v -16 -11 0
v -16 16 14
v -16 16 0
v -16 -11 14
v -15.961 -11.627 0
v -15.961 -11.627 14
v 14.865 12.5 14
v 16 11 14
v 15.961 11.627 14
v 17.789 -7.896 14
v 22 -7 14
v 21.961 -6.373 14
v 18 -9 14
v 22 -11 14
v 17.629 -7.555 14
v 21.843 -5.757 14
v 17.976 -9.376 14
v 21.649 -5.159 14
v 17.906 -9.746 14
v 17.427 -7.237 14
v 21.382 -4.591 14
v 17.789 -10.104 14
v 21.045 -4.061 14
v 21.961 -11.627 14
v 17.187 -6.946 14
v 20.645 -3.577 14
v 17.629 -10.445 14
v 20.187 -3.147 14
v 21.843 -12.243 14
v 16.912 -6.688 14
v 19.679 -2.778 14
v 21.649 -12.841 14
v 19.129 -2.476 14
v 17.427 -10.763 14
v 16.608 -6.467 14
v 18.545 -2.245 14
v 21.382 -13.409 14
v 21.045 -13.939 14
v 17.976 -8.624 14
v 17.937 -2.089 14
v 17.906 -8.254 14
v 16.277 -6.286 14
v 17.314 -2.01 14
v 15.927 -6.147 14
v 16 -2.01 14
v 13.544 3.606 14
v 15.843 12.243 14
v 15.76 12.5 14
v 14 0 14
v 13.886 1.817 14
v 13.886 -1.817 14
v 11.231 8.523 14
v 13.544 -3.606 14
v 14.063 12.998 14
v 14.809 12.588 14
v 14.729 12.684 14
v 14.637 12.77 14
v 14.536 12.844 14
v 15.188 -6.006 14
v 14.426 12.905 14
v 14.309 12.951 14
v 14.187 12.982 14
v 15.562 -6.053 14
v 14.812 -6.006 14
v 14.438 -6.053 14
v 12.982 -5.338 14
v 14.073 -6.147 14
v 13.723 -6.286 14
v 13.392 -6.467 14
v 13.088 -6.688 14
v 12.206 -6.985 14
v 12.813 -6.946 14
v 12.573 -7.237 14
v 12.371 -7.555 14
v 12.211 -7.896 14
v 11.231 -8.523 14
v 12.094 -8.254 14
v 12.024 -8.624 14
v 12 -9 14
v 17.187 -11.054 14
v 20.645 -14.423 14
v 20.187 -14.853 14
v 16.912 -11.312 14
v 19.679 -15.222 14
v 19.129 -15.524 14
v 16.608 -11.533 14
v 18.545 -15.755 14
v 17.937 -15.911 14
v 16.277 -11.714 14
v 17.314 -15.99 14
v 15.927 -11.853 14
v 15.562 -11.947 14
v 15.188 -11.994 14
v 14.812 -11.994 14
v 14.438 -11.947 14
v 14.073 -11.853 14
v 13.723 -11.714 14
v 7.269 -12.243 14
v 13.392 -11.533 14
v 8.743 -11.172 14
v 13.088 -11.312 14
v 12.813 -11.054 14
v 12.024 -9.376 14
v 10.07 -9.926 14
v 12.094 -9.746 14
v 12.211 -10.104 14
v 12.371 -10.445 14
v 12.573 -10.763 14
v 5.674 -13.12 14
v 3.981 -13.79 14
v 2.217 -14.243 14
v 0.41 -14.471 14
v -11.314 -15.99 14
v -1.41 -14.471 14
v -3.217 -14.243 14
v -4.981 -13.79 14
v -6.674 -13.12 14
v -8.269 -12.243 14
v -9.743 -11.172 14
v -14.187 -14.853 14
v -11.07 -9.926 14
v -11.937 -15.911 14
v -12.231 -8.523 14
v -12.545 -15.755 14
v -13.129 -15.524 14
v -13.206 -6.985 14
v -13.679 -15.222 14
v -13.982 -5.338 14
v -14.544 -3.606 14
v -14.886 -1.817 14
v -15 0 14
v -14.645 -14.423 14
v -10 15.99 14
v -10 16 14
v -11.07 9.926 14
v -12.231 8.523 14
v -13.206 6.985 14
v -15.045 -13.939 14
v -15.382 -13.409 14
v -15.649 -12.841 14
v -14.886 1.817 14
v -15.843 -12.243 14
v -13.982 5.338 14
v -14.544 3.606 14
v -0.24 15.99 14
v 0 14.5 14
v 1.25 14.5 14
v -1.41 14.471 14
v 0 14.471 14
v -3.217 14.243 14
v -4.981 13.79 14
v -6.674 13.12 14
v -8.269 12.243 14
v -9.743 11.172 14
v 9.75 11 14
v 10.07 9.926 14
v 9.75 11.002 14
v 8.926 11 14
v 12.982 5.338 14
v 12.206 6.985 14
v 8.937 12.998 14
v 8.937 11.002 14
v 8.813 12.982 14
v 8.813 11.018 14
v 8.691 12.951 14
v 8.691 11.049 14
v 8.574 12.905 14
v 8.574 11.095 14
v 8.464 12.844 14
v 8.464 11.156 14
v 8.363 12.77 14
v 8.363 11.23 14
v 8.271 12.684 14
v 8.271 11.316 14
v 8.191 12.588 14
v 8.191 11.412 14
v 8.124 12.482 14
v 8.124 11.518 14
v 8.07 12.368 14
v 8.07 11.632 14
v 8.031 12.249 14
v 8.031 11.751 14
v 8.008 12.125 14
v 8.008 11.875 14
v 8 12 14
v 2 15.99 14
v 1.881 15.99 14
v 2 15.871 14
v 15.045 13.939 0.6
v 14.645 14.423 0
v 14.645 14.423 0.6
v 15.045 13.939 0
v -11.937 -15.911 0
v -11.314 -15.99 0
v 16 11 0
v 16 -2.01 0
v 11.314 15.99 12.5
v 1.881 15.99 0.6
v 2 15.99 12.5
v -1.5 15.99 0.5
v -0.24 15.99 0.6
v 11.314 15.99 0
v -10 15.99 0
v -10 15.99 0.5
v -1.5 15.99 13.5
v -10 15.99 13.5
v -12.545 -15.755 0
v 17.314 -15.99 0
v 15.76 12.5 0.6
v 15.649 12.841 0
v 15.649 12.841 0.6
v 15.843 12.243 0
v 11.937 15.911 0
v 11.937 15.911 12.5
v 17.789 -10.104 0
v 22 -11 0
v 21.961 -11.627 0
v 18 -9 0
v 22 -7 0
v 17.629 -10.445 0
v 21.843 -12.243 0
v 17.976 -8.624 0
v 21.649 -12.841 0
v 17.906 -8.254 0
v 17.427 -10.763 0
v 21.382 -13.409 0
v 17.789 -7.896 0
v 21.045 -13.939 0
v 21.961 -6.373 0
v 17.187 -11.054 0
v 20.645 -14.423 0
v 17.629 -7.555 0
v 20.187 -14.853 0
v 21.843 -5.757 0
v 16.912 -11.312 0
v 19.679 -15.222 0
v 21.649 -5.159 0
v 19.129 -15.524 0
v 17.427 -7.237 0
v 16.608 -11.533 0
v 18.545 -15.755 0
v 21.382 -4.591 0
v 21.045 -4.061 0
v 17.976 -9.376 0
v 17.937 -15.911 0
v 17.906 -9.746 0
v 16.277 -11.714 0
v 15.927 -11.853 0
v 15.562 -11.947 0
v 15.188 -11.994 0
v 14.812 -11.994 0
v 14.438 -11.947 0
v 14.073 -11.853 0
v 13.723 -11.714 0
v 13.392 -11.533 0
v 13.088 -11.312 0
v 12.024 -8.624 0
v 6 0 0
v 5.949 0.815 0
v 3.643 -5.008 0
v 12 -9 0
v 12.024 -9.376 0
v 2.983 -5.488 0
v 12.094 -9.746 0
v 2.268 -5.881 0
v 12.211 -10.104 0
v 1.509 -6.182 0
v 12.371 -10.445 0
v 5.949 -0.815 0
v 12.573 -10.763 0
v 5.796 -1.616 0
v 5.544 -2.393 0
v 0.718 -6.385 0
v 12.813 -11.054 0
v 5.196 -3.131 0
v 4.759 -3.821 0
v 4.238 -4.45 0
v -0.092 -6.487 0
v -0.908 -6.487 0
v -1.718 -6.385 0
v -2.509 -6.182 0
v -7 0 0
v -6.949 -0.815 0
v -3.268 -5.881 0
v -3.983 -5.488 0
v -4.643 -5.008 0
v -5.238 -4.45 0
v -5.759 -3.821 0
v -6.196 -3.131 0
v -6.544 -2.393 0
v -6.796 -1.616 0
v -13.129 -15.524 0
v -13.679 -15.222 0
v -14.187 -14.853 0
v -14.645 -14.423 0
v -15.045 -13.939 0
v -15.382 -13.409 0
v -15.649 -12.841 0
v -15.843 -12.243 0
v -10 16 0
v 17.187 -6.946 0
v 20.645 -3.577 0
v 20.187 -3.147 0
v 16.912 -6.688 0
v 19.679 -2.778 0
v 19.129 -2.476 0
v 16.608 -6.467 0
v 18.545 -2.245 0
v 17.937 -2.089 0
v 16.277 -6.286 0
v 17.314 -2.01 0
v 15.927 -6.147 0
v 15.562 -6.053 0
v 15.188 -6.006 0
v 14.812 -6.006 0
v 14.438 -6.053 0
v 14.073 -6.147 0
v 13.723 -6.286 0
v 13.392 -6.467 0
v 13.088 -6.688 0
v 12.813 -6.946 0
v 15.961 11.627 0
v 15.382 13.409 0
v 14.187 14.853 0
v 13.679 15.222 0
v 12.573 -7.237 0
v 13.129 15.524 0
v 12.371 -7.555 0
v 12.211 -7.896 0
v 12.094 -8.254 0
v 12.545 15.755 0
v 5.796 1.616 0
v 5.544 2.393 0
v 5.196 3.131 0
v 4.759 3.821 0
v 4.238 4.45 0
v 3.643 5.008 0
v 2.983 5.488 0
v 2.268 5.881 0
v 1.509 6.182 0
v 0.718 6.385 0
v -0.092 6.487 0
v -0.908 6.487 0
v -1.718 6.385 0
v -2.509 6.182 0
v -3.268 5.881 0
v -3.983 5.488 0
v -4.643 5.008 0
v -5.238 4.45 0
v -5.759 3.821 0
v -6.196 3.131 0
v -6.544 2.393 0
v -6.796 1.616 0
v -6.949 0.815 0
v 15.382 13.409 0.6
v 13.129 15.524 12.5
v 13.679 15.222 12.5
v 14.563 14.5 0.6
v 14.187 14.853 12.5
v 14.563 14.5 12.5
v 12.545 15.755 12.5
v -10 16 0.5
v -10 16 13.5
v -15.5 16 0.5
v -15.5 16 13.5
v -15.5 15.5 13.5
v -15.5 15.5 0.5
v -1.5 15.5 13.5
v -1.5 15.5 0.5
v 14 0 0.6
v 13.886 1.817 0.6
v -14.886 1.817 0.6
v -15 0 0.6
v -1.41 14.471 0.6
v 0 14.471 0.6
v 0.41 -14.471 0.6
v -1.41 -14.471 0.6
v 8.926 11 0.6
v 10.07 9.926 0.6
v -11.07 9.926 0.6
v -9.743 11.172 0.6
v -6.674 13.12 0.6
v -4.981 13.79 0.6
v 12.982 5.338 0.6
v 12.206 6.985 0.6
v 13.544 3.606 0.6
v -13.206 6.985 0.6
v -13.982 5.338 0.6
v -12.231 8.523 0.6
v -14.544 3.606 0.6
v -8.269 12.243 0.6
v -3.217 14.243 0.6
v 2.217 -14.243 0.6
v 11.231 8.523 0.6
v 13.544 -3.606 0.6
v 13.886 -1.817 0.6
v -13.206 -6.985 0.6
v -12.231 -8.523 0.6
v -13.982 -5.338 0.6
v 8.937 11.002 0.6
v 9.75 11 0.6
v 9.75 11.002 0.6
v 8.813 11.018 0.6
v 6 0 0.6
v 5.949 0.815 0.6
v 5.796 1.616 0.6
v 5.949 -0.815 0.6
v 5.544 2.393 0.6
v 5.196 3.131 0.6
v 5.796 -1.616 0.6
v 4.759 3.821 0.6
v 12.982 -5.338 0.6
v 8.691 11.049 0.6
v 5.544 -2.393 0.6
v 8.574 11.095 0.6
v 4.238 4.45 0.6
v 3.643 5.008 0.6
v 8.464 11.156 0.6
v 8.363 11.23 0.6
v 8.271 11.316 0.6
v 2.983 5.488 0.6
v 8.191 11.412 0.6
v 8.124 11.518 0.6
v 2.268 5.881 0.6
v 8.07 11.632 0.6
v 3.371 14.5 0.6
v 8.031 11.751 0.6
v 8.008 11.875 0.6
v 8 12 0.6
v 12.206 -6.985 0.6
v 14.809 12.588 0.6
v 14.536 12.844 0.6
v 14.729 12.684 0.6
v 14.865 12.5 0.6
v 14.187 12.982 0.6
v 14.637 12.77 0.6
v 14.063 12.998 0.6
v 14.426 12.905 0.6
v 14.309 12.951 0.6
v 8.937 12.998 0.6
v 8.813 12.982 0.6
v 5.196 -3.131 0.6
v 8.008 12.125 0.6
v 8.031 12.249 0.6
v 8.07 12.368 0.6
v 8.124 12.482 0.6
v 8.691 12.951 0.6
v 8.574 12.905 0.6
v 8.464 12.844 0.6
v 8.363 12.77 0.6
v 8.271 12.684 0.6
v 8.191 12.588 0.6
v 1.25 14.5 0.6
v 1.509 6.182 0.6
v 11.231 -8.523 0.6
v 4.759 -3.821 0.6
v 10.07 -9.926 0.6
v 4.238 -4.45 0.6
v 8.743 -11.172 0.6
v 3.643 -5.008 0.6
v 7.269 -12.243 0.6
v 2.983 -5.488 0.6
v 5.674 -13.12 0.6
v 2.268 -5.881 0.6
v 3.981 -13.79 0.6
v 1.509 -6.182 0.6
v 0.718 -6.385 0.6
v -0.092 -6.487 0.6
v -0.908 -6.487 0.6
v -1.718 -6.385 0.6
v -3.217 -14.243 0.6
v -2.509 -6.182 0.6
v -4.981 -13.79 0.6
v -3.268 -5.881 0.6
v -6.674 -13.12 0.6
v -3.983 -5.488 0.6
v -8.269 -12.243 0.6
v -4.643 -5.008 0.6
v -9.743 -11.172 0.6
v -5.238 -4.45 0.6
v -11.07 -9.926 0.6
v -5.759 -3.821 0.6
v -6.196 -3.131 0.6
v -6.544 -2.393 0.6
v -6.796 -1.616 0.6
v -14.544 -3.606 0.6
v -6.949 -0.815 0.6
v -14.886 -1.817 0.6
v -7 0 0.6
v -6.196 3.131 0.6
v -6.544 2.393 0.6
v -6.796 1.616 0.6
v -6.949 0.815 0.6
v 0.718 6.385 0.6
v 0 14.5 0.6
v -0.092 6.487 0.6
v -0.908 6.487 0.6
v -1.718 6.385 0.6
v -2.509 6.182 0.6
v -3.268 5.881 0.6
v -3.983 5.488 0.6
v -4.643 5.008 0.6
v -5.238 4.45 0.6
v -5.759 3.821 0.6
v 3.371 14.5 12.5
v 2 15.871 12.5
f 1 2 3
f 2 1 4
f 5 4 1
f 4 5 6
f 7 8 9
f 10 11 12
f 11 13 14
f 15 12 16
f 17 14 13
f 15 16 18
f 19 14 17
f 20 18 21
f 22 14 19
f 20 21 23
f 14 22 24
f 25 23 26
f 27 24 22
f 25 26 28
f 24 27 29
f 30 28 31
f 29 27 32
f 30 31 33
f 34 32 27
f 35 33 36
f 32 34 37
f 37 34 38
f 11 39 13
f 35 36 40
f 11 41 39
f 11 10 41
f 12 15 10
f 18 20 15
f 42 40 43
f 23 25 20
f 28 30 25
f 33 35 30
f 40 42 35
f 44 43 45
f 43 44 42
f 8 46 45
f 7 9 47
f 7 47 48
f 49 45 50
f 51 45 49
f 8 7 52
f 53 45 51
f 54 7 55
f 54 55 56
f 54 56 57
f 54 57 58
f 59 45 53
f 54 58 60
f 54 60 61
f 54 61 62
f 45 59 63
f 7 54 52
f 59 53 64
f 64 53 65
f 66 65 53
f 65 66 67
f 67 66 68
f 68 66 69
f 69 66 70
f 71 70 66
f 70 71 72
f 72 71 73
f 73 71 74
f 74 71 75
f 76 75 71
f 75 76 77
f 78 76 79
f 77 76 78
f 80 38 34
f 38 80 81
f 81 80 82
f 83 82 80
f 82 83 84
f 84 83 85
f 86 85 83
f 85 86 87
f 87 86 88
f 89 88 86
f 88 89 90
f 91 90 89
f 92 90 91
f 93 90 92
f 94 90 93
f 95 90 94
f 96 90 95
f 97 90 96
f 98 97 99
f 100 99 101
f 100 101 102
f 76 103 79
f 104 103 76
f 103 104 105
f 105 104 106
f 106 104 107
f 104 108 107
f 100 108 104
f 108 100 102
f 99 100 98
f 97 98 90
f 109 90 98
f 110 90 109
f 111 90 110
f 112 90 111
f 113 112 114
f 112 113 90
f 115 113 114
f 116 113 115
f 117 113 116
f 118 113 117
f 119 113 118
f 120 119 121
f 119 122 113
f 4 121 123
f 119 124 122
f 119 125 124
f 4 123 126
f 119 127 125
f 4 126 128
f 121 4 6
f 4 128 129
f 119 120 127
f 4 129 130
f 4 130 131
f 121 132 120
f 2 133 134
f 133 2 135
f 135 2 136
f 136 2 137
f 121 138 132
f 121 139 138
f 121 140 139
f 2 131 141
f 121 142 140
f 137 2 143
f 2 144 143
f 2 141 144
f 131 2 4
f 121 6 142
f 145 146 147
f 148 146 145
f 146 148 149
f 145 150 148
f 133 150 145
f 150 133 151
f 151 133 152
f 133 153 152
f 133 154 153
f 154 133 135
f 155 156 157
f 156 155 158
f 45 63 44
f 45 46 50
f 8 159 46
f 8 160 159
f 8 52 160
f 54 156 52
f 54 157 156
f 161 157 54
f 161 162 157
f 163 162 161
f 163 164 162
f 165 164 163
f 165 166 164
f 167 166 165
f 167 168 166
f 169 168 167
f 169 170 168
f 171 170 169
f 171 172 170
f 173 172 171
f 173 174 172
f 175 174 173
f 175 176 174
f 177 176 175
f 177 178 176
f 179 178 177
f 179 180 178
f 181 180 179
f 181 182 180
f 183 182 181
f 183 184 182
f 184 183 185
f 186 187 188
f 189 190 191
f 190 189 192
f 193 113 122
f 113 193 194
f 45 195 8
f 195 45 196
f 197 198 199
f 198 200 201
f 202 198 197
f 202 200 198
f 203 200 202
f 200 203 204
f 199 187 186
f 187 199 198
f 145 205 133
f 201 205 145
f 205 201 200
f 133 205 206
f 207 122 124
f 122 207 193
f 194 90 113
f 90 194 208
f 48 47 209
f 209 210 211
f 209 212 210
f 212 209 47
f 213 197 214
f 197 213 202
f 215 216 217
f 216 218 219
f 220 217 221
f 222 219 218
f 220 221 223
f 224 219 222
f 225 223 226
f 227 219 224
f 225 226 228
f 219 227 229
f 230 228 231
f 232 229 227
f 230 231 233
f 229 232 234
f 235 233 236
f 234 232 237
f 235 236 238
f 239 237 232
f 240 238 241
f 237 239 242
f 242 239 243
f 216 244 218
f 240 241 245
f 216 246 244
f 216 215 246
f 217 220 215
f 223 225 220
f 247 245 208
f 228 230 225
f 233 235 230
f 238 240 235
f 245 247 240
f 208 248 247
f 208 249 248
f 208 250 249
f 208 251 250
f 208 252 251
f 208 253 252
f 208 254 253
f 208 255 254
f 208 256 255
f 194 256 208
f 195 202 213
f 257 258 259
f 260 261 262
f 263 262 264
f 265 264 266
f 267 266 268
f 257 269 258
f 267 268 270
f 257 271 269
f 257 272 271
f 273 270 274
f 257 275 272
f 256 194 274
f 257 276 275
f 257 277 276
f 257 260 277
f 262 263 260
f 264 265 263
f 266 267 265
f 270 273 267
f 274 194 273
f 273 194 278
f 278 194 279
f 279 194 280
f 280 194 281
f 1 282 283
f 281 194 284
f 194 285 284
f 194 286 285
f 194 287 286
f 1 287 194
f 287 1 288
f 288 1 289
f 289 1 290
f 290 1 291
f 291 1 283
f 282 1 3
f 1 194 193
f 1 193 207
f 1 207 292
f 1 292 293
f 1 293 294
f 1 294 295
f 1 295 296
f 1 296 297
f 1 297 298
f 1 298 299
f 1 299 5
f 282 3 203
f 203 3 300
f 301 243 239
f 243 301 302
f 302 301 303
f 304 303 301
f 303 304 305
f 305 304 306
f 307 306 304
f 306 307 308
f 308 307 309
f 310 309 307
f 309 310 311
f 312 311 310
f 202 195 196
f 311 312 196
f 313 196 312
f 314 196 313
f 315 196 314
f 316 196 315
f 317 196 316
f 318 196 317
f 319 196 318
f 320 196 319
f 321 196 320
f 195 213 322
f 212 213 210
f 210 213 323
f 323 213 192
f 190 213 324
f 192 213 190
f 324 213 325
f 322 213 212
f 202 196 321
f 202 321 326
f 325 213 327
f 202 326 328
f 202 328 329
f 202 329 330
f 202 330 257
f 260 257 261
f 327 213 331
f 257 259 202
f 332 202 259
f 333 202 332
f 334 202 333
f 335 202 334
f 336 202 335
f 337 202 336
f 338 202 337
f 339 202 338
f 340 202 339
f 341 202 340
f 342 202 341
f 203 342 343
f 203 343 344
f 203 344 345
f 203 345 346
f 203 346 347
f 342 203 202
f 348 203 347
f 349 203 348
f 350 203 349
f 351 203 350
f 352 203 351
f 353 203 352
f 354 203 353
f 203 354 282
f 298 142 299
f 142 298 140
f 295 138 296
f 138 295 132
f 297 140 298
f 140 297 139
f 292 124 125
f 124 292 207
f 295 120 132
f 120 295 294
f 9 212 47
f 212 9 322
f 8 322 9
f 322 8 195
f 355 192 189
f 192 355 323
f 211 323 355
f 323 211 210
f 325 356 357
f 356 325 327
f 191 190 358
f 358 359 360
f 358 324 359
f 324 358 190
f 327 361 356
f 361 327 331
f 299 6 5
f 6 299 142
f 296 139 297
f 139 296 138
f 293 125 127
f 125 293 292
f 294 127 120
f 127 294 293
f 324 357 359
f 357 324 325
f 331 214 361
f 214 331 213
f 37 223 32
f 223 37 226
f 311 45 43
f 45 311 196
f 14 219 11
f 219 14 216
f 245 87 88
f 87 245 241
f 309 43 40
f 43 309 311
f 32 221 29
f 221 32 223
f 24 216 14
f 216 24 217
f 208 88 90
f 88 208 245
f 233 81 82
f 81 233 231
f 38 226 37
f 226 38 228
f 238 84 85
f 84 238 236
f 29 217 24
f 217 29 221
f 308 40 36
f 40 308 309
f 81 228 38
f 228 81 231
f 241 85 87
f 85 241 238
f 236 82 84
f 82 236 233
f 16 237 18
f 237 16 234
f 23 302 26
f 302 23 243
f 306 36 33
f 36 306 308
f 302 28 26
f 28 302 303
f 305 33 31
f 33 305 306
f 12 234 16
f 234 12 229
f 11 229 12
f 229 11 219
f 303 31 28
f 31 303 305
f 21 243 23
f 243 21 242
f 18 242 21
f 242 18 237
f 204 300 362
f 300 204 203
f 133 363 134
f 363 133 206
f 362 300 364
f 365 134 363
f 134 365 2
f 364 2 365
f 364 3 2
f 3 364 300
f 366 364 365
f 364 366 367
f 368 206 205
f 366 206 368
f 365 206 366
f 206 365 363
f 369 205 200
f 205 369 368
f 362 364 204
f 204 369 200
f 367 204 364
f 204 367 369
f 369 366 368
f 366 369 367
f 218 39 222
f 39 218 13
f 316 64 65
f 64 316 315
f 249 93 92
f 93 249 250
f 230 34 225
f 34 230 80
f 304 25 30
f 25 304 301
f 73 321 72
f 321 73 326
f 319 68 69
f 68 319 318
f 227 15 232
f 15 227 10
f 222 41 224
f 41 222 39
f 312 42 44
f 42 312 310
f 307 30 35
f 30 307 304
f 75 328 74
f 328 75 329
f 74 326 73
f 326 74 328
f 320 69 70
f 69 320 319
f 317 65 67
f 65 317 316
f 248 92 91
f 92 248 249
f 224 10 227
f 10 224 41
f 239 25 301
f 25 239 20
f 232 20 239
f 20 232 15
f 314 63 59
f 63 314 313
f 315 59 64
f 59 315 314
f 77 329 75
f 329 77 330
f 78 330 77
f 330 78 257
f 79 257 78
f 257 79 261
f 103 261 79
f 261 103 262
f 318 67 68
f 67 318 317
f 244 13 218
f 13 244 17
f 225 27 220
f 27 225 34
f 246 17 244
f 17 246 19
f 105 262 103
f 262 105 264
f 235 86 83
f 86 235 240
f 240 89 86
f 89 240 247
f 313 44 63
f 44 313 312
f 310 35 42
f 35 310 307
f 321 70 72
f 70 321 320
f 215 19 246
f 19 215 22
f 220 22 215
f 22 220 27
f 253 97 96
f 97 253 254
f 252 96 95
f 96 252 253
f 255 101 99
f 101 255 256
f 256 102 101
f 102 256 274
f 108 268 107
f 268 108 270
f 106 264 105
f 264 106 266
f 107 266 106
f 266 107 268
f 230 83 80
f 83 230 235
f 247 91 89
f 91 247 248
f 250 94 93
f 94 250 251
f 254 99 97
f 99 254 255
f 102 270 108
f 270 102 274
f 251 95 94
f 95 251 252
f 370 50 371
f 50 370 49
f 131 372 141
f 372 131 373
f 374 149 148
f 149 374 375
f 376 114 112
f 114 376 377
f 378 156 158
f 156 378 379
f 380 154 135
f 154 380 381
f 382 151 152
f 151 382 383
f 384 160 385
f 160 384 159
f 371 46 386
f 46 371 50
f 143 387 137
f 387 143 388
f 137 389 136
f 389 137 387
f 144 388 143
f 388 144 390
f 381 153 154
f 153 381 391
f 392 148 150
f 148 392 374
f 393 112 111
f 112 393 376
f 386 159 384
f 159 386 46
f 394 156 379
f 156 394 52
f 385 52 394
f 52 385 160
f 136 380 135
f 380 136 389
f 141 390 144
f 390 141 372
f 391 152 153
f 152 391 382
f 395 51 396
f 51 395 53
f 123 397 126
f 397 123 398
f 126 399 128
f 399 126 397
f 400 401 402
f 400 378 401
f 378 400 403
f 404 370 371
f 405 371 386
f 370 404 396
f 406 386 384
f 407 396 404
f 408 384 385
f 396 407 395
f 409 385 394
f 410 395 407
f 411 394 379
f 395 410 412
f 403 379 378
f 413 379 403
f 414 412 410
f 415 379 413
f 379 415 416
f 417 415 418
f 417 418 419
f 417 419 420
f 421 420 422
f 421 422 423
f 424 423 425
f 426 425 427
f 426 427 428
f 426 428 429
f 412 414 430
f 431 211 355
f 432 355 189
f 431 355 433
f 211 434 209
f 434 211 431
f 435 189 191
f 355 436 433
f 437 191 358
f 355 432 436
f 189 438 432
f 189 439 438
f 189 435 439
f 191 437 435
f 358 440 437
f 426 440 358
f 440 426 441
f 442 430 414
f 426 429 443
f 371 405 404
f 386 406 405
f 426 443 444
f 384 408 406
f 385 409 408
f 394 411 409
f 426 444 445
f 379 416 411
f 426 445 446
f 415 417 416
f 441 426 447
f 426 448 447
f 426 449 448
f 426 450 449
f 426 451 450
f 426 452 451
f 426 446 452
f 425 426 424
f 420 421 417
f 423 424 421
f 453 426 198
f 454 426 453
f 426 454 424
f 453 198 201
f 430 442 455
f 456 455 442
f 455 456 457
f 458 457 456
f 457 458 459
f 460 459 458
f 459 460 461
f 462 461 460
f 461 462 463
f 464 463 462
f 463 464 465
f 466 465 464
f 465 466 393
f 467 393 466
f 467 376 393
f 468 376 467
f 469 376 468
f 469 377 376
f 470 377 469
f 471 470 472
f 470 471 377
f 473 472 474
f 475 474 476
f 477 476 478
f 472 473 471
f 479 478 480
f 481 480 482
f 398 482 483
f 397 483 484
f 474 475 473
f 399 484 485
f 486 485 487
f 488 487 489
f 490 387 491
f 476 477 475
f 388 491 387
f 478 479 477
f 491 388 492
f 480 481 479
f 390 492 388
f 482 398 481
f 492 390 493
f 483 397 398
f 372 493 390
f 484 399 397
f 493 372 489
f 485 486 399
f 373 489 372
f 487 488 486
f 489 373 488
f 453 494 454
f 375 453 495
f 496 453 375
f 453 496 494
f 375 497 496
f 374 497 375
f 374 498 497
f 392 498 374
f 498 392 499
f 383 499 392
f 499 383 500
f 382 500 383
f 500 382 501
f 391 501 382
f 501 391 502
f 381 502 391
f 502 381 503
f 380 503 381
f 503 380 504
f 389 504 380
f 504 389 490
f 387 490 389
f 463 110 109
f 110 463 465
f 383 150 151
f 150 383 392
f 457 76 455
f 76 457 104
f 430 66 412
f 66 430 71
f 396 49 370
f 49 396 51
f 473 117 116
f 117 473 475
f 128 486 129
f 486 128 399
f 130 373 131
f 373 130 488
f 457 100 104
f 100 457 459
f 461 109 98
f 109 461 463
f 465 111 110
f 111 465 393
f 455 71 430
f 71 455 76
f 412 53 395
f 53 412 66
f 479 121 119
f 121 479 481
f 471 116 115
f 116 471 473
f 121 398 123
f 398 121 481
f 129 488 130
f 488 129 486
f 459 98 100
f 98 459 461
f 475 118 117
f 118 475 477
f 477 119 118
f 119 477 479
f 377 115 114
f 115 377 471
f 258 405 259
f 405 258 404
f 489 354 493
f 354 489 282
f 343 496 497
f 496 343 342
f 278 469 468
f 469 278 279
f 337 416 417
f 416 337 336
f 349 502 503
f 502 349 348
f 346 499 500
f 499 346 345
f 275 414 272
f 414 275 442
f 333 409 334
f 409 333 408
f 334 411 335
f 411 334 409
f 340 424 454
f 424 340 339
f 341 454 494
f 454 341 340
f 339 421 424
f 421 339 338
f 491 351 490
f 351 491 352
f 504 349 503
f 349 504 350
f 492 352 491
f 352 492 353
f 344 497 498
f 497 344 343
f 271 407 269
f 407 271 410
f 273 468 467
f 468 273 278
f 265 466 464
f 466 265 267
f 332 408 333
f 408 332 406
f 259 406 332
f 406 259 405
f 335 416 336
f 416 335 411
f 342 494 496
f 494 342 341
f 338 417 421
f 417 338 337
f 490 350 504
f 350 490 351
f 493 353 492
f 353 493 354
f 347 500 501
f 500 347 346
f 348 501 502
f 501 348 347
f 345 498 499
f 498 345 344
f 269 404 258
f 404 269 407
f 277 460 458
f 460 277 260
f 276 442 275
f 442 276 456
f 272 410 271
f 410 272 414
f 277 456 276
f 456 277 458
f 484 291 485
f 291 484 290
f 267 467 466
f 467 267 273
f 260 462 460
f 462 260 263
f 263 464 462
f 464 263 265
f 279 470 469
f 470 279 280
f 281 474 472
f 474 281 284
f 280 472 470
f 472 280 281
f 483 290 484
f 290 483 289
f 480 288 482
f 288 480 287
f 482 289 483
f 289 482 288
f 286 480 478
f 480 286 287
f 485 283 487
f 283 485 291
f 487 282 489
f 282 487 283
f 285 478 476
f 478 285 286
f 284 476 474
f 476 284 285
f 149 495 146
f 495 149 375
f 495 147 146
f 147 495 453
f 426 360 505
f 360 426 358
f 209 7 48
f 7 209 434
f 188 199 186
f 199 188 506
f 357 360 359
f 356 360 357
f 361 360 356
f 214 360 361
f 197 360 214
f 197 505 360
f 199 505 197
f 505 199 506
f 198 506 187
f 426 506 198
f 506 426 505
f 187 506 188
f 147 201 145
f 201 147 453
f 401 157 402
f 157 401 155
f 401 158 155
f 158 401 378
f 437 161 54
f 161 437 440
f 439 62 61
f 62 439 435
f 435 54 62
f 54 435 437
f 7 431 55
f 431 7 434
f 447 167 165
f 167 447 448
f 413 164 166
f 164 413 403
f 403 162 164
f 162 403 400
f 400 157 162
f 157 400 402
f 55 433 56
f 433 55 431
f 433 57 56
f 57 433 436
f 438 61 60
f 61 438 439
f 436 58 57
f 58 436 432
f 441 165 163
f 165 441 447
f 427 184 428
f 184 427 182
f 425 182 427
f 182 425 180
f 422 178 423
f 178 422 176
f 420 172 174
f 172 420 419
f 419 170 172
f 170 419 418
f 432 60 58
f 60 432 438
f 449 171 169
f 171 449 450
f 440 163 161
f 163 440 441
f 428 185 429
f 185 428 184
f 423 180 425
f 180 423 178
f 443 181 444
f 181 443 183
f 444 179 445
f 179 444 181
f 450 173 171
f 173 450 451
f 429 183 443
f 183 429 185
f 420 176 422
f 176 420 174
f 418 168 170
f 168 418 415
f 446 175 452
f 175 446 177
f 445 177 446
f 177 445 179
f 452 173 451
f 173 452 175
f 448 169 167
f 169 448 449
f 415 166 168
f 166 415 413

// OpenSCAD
$fn = 50;


union() {
	difference() {
		union() {
			translate(v = [0, 0, 0]) {
				rotate(a = [0, 0, 0]) {
					hull() {
						translate(v = [-11.0000000000, 11.0000000000, 0]) {
							rotate(a = [0, 0, 0]) {
								translate(v = [0, 0, 0]) {
									rotate(a = [0, 0, 0]) {
										cylinder(h = 14, r = 5);
									}
								}
							}
						}
						translate(v = [11.0000000000, 11.0000000000, 0]) {
							rotate(a = [0, 0, 0]) {
								translate(v = [0, 0, 0]) {
									rotate(a = [0, 0, 0]) {
										cylinder(h = 14, r = 5);
									}
								}
							}
						}
						translate(v = [-11.0000000000, -11.0000000000, 0]) {
							rotate(a = [0, 0, 0]) {
								translate(v = [0, 0, 0]) {
									rotate(a = [0, 0, 0]) {
										cylinder(h = 14, r = 5);
									}
								}
							}
						}
						translate(v = [11.0000000000, -11.0000000000, 0]) {
							rotate(a = [0, 0, 0]) {
								translate(v = [0, 0, 0]) {
									rotate(a = [0, 0, 0]) {
										cylinder(h = 14, r = 5);
									}
								}
							}
						}
					}
				}
			}
			translate(v = [7.5000000000, -9.0000000000, 0]) {
				rotate(a = [0, 0, 0]) {
					hull() {
						translate(v = [-9.5000000000, 2.0000000000, 0]) {
							rotate(a = [0, 0, 0]) {
								translate(v = [0, 0, 0]) {
									rotate(a = [0, 0, 0]) {
										cylinder(h = 14, r = 5);
									}
								}
							}
						}
						translate(v = [9.5000000000, 2.0000000000, 0]) {
							rotate(a = [0, 0, 0]) {
								translate(v = [0, 0, 0]) {
									rotate(a = [0, 0, 0]) {
										cylinder(h = 14, r = 5);
									}
								}
							}
						}
						translate(v = [-9.5000000000, -2.0000000000, 0]) {
							rotate(a = [0, 0, 0]) {
								translate(v = [0, 0, 0]) {
									rotate(a = [0, 0, 0]) {
										cylinder(h = 14, r = 5);
									}
								}
							}
						}
						translate(v = [9.5000000000, -2.0000000000, 0]) {
							rotate(a = [0, 0, 0]) {
								translate(v = [0, 0, 0]) {
									rotate(a = [0, 0, 0]) {
										cylinder(h = 14, r = 5);
									}
								}
							}
						}
					}
				}
			}
			translate(v = [-16.0000000000, 10.0000000000, 0]) {
				rotate(a = [0, 0, 0]) {
					cube(size = [6, 6, 14]);
				}
			}
		}
		union() {
			translate(v = [-15.5000000000, 15.5000000000, 0.5000000000]) {
				rotate(a = [0, 0, 0]) {
					cube(size = [14, 0.5000000000, 13.0000000000]);
				}
			}
			translate(v = [15.0000000000, -9.0000000000, -125.0000000000]) {
				rotate(a = [0, 0, 0]) {
					cylinder(h = 250, r = 3.0000000000);
				}
			}
			translate(v = [-0.5000000000, 0.0000000000, 0.6000000000]) {
				rotate(a = [0, 0, 0]) {
					cylinder(h = 16.4000000000, r = 14.5000000000);
				}
			}
			translate(v = [-0.5000000000, 0.0000000000, -7.0000000000]) {
				rotate(a = [0, 0, 0]) {
					cylinder(h = 14, r = 6.5000000000);
				}
			}
			translate(v = [0.0000000000, 12.5000000000, 0.6000000000]) {
				rotate(a = [0, 0, 0]) {
					cube(size = [16.0000000000, 2, 16.4000000000]);
				}
			}
			translate(v = [2.0000000000, 12.5000000000, 12.5000000000]) {
				rotate(a = [0, 0, 0]) {
					cube(size = [14.0000000000, 5, 1.5000000000]);
				}
			}
			translate(v = [-3.0000000000, 18.7500000000, 0.6000000000]) {
				rotate(a = [0, 0, -45]) {
					cube(size = [10, 1.5000000000, 16.4000000000]);
				}
			}
			translate(v = [2.2500000000, 11.0000000000, 0.6000000000]) {
				rotate(a = [0, 0, 0]) {
					cube(size = [7.5000000000, 2, 13.4000000000]);
				}
			}
		}
	}
	union() {
		translate(v = [11.5000000000, 12, 0]) {
			rotate(a = [0, 0, 0]) {
				hull() {
					translate(v = [2.5000000000, 0, 0]) {
						rotate(a = [0, 0, 0]) {
							translate(v = [0, 0, 0]) {
								rotate(a = [0, 0, 0]) {
									cylinder(h = 14, r = 1.0000000000);
								}
							}
						}
					}
					translate(v = [-2.5000000000, 0, 0]) {
						rotate(a = [0, 0, 0]) {
							translate(v = [0, 0, 0]) {
								rotate(a = [0, 0, 0]) {
									cylinder(h = 14, r = 1.0000000000);
								}
							}
						}
					}
				}
			}
		}
	}
}
